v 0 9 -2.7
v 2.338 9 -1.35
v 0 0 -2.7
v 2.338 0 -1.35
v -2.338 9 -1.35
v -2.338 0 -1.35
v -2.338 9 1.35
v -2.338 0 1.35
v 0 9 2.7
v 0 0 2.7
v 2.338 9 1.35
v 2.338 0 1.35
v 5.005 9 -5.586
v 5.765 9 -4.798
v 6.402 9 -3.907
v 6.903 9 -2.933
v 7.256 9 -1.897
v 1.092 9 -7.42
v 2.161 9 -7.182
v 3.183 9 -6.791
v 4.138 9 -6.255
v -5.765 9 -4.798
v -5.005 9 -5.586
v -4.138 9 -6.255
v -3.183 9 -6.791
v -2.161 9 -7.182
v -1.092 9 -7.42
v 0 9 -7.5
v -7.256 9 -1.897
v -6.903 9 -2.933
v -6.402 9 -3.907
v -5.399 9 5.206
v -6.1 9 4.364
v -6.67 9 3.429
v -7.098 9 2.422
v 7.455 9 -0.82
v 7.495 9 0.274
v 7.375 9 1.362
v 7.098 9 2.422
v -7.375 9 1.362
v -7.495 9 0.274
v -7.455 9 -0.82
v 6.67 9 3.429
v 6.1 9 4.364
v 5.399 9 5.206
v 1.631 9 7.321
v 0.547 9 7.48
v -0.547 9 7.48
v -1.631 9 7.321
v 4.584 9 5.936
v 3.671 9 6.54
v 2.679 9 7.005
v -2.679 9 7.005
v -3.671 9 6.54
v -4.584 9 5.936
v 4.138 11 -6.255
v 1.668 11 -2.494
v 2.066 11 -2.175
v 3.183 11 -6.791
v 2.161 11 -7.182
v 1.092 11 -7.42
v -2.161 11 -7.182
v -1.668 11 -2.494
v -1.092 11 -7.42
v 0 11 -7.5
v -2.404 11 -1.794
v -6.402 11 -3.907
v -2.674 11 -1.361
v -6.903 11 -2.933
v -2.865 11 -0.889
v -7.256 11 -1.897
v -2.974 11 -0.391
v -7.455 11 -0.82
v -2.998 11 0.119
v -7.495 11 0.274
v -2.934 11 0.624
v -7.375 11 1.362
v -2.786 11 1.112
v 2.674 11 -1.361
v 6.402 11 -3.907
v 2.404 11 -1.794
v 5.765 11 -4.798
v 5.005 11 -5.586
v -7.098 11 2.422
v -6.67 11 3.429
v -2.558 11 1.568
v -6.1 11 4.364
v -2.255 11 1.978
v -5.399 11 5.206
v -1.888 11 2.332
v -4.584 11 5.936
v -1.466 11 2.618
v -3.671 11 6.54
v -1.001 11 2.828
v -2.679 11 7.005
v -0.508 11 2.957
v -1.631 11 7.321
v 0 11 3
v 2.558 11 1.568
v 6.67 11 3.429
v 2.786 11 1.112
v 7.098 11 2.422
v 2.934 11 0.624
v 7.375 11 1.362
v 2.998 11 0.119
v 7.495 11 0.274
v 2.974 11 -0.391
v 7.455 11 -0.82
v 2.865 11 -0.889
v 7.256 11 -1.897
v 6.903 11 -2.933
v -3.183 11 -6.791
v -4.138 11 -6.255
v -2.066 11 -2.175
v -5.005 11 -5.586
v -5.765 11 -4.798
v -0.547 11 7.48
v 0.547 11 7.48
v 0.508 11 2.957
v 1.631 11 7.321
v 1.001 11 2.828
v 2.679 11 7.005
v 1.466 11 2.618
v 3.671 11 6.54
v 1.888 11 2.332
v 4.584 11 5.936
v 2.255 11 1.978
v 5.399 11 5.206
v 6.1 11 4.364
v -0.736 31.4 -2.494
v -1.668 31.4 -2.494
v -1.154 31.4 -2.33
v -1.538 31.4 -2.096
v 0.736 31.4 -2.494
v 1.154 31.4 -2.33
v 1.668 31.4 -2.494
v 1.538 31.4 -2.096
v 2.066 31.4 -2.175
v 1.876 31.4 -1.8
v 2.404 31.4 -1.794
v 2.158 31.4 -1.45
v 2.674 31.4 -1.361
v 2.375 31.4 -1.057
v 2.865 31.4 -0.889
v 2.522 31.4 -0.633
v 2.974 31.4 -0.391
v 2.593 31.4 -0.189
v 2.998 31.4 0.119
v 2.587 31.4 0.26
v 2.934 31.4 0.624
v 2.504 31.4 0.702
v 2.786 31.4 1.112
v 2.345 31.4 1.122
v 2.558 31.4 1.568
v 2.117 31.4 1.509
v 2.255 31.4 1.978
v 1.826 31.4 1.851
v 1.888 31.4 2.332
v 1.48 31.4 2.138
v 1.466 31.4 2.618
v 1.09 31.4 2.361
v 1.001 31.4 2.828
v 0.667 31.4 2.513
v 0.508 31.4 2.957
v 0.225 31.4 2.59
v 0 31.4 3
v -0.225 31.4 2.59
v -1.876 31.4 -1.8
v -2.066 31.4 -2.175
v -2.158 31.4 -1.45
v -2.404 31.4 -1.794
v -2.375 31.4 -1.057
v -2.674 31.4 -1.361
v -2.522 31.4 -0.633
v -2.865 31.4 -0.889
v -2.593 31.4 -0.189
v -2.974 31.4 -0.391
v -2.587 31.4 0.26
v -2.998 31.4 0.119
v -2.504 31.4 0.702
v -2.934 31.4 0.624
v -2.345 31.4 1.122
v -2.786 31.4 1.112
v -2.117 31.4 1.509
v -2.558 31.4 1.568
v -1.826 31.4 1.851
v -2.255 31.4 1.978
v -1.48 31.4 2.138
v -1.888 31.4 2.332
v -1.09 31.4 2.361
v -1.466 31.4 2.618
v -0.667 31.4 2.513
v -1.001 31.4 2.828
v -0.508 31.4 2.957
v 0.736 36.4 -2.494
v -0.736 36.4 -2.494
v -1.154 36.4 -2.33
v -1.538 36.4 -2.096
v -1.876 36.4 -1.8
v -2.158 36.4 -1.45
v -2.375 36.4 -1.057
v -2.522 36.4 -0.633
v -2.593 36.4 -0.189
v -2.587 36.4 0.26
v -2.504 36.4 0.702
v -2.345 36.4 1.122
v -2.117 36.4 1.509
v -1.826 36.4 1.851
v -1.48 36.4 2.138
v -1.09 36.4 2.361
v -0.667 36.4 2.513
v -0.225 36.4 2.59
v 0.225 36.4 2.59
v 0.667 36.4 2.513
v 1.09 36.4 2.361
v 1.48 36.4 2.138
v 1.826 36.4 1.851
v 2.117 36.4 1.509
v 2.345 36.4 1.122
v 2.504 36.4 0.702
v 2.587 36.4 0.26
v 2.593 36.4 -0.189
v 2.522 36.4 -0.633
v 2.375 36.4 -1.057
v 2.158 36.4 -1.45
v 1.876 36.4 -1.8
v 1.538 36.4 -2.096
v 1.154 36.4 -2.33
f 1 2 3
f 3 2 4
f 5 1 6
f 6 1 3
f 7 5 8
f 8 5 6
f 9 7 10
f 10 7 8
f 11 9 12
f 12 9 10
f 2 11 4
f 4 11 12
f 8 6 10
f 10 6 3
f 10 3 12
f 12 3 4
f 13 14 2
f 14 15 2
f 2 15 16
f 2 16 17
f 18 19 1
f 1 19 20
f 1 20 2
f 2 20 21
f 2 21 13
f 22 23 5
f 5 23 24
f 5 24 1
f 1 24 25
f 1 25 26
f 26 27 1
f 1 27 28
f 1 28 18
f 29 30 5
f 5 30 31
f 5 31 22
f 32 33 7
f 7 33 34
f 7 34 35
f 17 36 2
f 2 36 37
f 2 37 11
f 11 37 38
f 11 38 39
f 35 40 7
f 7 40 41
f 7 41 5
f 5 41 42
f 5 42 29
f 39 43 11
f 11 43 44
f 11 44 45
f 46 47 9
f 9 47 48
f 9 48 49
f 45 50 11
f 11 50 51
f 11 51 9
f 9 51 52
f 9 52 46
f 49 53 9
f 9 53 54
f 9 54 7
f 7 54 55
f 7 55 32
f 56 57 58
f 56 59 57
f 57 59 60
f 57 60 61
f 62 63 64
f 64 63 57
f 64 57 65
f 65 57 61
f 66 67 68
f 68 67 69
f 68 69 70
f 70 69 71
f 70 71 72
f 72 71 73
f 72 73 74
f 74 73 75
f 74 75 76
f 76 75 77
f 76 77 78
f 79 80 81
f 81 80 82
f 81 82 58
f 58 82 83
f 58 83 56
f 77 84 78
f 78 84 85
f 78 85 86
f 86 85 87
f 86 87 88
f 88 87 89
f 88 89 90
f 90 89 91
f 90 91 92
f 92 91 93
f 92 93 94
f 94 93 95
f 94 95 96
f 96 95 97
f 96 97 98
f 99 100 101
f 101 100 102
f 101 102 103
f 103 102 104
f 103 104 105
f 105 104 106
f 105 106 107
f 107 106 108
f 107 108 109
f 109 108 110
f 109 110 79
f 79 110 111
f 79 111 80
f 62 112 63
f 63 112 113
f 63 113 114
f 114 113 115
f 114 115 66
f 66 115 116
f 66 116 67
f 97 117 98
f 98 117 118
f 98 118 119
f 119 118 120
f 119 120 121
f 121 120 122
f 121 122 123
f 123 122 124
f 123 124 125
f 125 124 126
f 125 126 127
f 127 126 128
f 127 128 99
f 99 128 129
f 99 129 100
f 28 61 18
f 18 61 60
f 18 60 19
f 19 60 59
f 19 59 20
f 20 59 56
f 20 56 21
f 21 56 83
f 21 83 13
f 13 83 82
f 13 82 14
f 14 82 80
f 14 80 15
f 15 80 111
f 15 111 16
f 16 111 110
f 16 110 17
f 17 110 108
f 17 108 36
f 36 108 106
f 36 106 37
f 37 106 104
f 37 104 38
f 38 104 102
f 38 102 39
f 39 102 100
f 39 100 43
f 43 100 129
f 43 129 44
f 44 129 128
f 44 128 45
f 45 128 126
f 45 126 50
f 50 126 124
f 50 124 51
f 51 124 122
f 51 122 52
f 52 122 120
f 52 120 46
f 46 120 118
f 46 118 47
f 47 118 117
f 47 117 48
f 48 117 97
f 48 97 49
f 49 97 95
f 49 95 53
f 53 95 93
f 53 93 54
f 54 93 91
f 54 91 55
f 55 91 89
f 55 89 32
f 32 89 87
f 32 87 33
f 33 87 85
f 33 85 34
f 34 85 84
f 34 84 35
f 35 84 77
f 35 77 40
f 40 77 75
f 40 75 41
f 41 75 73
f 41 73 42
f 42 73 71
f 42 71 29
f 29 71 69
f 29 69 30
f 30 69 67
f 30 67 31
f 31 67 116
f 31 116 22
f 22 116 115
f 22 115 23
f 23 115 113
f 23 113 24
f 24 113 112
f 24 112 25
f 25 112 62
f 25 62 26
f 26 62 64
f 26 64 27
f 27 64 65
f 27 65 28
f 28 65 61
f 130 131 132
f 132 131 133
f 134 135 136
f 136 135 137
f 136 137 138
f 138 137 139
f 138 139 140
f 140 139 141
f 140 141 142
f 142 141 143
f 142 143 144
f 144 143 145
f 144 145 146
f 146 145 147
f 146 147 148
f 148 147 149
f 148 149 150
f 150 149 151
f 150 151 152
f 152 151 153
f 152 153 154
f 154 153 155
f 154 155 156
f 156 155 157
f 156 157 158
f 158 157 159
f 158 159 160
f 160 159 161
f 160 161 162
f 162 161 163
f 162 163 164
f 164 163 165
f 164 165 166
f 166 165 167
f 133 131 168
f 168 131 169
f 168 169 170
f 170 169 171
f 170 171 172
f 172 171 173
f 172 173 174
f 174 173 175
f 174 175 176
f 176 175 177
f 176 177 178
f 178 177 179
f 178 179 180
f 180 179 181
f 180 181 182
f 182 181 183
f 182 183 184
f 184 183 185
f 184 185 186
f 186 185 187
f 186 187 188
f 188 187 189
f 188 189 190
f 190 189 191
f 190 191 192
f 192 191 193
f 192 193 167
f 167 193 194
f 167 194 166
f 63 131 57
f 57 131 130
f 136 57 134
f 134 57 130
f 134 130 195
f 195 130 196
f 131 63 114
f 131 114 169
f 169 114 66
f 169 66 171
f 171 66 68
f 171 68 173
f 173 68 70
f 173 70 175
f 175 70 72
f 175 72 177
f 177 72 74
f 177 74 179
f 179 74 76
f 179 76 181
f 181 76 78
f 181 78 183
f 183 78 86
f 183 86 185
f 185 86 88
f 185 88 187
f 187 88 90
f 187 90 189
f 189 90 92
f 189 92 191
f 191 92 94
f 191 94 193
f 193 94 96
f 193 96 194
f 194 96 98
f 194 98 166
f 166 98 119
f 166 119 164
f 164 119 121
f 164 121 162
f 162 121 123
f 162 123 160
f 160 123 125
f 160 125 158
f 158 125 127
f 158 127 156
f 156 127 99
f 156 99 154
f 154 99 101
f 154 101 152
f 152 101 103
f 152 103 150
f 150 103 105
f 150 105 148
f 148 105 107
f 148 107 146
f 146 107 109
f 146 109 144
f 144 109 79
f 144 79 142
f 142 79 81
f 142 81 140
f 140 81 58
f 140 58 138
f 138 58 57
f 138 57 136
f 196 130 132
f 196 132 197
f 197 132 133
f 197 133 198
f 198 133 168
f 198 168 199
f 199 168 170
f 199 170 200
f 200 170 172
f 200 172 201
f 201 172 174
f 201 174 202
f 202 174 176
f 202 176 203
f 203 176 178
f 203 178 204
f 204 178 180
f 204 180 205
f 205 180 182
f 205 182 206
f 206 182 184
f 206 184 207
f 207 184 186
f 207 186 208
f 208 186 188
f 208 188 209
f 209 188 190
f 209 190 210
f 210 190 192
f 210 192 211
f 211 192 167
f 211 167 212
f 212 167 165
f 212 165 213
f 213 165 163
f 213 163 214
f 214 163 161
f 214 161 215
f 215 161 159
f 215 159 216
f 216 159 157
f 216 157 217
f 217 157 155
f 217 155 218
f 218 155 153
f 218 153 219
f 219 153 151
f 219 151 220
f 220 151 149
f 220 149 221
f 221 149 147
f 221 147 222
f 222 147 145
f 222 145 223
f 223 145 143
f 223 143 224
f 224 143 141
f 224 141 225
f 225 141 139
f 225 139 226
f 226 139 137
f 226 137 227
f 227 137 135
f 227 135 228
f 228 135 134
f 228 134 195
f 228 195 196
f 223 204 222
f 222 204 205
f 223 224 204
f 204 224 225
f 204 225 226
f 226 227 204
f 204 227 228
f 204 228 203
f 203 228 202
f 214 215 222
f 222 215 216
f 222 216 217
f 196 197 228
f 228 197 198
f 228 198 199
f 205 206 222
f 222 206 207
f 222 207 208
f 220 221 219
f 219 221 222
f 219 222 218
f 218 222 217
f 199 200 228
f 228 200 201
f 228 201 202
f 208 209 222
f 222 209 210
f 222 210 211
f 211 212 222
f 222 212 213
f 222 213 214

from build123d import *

# Parameters (mm, degrees)
BOSS_EXTRUDE1_DEPTH = 9
BOSS_EXTRUDE2_DEPTH = 22.4
SKETCH3_R           = 7.5
BOSS_EXTRUDE3_DEPTH = 2
BOSS_EXTRUDE4_DEPTH = 5


with BuildPart() as part:
    # Sketch1 → Boss-Extrude1 (new body)
    with BuildSketch(Plane(origin=(0, 0, 0), x_dir=(1, 0, 0), z_dir=(0, 1, 0))):
        Polygon((0, 2.7), (-2.33826859, 1.35), (-2.33826859, -1.35), (0, -2.7), (2.33826859, -1.35), (2.33826859, 1.35), align=None)
    extrude(amount=BOSS_EXTRUDE1_DEPTH)

    # Sketch2 → Boss-Extrude2 (add)
    with BuildSketch(Plane(origin=(0, 9, 0), x_dir=(1, 0, 0), z_dir=(0, 1, 0))):
        with BuildLine():
            Line((-1.667829968, 2.493660602), (1.667829968, 2.493660602))
            ThreePointArc((1.667829968, 2.493660602), (0, -3), (-1.667829968, 2.493660602))
        make_face()
    extrude(amount=BOSS_EXTRUDE2_DEPTH)

    # Sketch3 → Boss-Extrude3 (add)
    with BuildSketch(Plane.XZ.offset(-9)):
        with Locations(Location((0, 0, 0), (0, 0, 270))):
            Circle(SKETCH3_R)
    extrude(amount=-BOSS_EXTRUDE3_DEPTH)

    # Sketch4 → Boss-Extrude4 (add)
    with BuildSketch(Plane(origin=(0, 31.4, 0), x_dir=(1, 0, 0), z_dir=(0, 1, 0))):
        with BuildLine():
            Line((-0.735973371, 2.493660602), (0.735973371, 2.493660602))
            ThreePointArc((0.735973371, 2.493660602), (0, -2.6), (-0.735973371, 2.493660602))
        make_face()
    extrude(amount=BOSS_EXTRUDE4_DEPTH)


solid = part.part
